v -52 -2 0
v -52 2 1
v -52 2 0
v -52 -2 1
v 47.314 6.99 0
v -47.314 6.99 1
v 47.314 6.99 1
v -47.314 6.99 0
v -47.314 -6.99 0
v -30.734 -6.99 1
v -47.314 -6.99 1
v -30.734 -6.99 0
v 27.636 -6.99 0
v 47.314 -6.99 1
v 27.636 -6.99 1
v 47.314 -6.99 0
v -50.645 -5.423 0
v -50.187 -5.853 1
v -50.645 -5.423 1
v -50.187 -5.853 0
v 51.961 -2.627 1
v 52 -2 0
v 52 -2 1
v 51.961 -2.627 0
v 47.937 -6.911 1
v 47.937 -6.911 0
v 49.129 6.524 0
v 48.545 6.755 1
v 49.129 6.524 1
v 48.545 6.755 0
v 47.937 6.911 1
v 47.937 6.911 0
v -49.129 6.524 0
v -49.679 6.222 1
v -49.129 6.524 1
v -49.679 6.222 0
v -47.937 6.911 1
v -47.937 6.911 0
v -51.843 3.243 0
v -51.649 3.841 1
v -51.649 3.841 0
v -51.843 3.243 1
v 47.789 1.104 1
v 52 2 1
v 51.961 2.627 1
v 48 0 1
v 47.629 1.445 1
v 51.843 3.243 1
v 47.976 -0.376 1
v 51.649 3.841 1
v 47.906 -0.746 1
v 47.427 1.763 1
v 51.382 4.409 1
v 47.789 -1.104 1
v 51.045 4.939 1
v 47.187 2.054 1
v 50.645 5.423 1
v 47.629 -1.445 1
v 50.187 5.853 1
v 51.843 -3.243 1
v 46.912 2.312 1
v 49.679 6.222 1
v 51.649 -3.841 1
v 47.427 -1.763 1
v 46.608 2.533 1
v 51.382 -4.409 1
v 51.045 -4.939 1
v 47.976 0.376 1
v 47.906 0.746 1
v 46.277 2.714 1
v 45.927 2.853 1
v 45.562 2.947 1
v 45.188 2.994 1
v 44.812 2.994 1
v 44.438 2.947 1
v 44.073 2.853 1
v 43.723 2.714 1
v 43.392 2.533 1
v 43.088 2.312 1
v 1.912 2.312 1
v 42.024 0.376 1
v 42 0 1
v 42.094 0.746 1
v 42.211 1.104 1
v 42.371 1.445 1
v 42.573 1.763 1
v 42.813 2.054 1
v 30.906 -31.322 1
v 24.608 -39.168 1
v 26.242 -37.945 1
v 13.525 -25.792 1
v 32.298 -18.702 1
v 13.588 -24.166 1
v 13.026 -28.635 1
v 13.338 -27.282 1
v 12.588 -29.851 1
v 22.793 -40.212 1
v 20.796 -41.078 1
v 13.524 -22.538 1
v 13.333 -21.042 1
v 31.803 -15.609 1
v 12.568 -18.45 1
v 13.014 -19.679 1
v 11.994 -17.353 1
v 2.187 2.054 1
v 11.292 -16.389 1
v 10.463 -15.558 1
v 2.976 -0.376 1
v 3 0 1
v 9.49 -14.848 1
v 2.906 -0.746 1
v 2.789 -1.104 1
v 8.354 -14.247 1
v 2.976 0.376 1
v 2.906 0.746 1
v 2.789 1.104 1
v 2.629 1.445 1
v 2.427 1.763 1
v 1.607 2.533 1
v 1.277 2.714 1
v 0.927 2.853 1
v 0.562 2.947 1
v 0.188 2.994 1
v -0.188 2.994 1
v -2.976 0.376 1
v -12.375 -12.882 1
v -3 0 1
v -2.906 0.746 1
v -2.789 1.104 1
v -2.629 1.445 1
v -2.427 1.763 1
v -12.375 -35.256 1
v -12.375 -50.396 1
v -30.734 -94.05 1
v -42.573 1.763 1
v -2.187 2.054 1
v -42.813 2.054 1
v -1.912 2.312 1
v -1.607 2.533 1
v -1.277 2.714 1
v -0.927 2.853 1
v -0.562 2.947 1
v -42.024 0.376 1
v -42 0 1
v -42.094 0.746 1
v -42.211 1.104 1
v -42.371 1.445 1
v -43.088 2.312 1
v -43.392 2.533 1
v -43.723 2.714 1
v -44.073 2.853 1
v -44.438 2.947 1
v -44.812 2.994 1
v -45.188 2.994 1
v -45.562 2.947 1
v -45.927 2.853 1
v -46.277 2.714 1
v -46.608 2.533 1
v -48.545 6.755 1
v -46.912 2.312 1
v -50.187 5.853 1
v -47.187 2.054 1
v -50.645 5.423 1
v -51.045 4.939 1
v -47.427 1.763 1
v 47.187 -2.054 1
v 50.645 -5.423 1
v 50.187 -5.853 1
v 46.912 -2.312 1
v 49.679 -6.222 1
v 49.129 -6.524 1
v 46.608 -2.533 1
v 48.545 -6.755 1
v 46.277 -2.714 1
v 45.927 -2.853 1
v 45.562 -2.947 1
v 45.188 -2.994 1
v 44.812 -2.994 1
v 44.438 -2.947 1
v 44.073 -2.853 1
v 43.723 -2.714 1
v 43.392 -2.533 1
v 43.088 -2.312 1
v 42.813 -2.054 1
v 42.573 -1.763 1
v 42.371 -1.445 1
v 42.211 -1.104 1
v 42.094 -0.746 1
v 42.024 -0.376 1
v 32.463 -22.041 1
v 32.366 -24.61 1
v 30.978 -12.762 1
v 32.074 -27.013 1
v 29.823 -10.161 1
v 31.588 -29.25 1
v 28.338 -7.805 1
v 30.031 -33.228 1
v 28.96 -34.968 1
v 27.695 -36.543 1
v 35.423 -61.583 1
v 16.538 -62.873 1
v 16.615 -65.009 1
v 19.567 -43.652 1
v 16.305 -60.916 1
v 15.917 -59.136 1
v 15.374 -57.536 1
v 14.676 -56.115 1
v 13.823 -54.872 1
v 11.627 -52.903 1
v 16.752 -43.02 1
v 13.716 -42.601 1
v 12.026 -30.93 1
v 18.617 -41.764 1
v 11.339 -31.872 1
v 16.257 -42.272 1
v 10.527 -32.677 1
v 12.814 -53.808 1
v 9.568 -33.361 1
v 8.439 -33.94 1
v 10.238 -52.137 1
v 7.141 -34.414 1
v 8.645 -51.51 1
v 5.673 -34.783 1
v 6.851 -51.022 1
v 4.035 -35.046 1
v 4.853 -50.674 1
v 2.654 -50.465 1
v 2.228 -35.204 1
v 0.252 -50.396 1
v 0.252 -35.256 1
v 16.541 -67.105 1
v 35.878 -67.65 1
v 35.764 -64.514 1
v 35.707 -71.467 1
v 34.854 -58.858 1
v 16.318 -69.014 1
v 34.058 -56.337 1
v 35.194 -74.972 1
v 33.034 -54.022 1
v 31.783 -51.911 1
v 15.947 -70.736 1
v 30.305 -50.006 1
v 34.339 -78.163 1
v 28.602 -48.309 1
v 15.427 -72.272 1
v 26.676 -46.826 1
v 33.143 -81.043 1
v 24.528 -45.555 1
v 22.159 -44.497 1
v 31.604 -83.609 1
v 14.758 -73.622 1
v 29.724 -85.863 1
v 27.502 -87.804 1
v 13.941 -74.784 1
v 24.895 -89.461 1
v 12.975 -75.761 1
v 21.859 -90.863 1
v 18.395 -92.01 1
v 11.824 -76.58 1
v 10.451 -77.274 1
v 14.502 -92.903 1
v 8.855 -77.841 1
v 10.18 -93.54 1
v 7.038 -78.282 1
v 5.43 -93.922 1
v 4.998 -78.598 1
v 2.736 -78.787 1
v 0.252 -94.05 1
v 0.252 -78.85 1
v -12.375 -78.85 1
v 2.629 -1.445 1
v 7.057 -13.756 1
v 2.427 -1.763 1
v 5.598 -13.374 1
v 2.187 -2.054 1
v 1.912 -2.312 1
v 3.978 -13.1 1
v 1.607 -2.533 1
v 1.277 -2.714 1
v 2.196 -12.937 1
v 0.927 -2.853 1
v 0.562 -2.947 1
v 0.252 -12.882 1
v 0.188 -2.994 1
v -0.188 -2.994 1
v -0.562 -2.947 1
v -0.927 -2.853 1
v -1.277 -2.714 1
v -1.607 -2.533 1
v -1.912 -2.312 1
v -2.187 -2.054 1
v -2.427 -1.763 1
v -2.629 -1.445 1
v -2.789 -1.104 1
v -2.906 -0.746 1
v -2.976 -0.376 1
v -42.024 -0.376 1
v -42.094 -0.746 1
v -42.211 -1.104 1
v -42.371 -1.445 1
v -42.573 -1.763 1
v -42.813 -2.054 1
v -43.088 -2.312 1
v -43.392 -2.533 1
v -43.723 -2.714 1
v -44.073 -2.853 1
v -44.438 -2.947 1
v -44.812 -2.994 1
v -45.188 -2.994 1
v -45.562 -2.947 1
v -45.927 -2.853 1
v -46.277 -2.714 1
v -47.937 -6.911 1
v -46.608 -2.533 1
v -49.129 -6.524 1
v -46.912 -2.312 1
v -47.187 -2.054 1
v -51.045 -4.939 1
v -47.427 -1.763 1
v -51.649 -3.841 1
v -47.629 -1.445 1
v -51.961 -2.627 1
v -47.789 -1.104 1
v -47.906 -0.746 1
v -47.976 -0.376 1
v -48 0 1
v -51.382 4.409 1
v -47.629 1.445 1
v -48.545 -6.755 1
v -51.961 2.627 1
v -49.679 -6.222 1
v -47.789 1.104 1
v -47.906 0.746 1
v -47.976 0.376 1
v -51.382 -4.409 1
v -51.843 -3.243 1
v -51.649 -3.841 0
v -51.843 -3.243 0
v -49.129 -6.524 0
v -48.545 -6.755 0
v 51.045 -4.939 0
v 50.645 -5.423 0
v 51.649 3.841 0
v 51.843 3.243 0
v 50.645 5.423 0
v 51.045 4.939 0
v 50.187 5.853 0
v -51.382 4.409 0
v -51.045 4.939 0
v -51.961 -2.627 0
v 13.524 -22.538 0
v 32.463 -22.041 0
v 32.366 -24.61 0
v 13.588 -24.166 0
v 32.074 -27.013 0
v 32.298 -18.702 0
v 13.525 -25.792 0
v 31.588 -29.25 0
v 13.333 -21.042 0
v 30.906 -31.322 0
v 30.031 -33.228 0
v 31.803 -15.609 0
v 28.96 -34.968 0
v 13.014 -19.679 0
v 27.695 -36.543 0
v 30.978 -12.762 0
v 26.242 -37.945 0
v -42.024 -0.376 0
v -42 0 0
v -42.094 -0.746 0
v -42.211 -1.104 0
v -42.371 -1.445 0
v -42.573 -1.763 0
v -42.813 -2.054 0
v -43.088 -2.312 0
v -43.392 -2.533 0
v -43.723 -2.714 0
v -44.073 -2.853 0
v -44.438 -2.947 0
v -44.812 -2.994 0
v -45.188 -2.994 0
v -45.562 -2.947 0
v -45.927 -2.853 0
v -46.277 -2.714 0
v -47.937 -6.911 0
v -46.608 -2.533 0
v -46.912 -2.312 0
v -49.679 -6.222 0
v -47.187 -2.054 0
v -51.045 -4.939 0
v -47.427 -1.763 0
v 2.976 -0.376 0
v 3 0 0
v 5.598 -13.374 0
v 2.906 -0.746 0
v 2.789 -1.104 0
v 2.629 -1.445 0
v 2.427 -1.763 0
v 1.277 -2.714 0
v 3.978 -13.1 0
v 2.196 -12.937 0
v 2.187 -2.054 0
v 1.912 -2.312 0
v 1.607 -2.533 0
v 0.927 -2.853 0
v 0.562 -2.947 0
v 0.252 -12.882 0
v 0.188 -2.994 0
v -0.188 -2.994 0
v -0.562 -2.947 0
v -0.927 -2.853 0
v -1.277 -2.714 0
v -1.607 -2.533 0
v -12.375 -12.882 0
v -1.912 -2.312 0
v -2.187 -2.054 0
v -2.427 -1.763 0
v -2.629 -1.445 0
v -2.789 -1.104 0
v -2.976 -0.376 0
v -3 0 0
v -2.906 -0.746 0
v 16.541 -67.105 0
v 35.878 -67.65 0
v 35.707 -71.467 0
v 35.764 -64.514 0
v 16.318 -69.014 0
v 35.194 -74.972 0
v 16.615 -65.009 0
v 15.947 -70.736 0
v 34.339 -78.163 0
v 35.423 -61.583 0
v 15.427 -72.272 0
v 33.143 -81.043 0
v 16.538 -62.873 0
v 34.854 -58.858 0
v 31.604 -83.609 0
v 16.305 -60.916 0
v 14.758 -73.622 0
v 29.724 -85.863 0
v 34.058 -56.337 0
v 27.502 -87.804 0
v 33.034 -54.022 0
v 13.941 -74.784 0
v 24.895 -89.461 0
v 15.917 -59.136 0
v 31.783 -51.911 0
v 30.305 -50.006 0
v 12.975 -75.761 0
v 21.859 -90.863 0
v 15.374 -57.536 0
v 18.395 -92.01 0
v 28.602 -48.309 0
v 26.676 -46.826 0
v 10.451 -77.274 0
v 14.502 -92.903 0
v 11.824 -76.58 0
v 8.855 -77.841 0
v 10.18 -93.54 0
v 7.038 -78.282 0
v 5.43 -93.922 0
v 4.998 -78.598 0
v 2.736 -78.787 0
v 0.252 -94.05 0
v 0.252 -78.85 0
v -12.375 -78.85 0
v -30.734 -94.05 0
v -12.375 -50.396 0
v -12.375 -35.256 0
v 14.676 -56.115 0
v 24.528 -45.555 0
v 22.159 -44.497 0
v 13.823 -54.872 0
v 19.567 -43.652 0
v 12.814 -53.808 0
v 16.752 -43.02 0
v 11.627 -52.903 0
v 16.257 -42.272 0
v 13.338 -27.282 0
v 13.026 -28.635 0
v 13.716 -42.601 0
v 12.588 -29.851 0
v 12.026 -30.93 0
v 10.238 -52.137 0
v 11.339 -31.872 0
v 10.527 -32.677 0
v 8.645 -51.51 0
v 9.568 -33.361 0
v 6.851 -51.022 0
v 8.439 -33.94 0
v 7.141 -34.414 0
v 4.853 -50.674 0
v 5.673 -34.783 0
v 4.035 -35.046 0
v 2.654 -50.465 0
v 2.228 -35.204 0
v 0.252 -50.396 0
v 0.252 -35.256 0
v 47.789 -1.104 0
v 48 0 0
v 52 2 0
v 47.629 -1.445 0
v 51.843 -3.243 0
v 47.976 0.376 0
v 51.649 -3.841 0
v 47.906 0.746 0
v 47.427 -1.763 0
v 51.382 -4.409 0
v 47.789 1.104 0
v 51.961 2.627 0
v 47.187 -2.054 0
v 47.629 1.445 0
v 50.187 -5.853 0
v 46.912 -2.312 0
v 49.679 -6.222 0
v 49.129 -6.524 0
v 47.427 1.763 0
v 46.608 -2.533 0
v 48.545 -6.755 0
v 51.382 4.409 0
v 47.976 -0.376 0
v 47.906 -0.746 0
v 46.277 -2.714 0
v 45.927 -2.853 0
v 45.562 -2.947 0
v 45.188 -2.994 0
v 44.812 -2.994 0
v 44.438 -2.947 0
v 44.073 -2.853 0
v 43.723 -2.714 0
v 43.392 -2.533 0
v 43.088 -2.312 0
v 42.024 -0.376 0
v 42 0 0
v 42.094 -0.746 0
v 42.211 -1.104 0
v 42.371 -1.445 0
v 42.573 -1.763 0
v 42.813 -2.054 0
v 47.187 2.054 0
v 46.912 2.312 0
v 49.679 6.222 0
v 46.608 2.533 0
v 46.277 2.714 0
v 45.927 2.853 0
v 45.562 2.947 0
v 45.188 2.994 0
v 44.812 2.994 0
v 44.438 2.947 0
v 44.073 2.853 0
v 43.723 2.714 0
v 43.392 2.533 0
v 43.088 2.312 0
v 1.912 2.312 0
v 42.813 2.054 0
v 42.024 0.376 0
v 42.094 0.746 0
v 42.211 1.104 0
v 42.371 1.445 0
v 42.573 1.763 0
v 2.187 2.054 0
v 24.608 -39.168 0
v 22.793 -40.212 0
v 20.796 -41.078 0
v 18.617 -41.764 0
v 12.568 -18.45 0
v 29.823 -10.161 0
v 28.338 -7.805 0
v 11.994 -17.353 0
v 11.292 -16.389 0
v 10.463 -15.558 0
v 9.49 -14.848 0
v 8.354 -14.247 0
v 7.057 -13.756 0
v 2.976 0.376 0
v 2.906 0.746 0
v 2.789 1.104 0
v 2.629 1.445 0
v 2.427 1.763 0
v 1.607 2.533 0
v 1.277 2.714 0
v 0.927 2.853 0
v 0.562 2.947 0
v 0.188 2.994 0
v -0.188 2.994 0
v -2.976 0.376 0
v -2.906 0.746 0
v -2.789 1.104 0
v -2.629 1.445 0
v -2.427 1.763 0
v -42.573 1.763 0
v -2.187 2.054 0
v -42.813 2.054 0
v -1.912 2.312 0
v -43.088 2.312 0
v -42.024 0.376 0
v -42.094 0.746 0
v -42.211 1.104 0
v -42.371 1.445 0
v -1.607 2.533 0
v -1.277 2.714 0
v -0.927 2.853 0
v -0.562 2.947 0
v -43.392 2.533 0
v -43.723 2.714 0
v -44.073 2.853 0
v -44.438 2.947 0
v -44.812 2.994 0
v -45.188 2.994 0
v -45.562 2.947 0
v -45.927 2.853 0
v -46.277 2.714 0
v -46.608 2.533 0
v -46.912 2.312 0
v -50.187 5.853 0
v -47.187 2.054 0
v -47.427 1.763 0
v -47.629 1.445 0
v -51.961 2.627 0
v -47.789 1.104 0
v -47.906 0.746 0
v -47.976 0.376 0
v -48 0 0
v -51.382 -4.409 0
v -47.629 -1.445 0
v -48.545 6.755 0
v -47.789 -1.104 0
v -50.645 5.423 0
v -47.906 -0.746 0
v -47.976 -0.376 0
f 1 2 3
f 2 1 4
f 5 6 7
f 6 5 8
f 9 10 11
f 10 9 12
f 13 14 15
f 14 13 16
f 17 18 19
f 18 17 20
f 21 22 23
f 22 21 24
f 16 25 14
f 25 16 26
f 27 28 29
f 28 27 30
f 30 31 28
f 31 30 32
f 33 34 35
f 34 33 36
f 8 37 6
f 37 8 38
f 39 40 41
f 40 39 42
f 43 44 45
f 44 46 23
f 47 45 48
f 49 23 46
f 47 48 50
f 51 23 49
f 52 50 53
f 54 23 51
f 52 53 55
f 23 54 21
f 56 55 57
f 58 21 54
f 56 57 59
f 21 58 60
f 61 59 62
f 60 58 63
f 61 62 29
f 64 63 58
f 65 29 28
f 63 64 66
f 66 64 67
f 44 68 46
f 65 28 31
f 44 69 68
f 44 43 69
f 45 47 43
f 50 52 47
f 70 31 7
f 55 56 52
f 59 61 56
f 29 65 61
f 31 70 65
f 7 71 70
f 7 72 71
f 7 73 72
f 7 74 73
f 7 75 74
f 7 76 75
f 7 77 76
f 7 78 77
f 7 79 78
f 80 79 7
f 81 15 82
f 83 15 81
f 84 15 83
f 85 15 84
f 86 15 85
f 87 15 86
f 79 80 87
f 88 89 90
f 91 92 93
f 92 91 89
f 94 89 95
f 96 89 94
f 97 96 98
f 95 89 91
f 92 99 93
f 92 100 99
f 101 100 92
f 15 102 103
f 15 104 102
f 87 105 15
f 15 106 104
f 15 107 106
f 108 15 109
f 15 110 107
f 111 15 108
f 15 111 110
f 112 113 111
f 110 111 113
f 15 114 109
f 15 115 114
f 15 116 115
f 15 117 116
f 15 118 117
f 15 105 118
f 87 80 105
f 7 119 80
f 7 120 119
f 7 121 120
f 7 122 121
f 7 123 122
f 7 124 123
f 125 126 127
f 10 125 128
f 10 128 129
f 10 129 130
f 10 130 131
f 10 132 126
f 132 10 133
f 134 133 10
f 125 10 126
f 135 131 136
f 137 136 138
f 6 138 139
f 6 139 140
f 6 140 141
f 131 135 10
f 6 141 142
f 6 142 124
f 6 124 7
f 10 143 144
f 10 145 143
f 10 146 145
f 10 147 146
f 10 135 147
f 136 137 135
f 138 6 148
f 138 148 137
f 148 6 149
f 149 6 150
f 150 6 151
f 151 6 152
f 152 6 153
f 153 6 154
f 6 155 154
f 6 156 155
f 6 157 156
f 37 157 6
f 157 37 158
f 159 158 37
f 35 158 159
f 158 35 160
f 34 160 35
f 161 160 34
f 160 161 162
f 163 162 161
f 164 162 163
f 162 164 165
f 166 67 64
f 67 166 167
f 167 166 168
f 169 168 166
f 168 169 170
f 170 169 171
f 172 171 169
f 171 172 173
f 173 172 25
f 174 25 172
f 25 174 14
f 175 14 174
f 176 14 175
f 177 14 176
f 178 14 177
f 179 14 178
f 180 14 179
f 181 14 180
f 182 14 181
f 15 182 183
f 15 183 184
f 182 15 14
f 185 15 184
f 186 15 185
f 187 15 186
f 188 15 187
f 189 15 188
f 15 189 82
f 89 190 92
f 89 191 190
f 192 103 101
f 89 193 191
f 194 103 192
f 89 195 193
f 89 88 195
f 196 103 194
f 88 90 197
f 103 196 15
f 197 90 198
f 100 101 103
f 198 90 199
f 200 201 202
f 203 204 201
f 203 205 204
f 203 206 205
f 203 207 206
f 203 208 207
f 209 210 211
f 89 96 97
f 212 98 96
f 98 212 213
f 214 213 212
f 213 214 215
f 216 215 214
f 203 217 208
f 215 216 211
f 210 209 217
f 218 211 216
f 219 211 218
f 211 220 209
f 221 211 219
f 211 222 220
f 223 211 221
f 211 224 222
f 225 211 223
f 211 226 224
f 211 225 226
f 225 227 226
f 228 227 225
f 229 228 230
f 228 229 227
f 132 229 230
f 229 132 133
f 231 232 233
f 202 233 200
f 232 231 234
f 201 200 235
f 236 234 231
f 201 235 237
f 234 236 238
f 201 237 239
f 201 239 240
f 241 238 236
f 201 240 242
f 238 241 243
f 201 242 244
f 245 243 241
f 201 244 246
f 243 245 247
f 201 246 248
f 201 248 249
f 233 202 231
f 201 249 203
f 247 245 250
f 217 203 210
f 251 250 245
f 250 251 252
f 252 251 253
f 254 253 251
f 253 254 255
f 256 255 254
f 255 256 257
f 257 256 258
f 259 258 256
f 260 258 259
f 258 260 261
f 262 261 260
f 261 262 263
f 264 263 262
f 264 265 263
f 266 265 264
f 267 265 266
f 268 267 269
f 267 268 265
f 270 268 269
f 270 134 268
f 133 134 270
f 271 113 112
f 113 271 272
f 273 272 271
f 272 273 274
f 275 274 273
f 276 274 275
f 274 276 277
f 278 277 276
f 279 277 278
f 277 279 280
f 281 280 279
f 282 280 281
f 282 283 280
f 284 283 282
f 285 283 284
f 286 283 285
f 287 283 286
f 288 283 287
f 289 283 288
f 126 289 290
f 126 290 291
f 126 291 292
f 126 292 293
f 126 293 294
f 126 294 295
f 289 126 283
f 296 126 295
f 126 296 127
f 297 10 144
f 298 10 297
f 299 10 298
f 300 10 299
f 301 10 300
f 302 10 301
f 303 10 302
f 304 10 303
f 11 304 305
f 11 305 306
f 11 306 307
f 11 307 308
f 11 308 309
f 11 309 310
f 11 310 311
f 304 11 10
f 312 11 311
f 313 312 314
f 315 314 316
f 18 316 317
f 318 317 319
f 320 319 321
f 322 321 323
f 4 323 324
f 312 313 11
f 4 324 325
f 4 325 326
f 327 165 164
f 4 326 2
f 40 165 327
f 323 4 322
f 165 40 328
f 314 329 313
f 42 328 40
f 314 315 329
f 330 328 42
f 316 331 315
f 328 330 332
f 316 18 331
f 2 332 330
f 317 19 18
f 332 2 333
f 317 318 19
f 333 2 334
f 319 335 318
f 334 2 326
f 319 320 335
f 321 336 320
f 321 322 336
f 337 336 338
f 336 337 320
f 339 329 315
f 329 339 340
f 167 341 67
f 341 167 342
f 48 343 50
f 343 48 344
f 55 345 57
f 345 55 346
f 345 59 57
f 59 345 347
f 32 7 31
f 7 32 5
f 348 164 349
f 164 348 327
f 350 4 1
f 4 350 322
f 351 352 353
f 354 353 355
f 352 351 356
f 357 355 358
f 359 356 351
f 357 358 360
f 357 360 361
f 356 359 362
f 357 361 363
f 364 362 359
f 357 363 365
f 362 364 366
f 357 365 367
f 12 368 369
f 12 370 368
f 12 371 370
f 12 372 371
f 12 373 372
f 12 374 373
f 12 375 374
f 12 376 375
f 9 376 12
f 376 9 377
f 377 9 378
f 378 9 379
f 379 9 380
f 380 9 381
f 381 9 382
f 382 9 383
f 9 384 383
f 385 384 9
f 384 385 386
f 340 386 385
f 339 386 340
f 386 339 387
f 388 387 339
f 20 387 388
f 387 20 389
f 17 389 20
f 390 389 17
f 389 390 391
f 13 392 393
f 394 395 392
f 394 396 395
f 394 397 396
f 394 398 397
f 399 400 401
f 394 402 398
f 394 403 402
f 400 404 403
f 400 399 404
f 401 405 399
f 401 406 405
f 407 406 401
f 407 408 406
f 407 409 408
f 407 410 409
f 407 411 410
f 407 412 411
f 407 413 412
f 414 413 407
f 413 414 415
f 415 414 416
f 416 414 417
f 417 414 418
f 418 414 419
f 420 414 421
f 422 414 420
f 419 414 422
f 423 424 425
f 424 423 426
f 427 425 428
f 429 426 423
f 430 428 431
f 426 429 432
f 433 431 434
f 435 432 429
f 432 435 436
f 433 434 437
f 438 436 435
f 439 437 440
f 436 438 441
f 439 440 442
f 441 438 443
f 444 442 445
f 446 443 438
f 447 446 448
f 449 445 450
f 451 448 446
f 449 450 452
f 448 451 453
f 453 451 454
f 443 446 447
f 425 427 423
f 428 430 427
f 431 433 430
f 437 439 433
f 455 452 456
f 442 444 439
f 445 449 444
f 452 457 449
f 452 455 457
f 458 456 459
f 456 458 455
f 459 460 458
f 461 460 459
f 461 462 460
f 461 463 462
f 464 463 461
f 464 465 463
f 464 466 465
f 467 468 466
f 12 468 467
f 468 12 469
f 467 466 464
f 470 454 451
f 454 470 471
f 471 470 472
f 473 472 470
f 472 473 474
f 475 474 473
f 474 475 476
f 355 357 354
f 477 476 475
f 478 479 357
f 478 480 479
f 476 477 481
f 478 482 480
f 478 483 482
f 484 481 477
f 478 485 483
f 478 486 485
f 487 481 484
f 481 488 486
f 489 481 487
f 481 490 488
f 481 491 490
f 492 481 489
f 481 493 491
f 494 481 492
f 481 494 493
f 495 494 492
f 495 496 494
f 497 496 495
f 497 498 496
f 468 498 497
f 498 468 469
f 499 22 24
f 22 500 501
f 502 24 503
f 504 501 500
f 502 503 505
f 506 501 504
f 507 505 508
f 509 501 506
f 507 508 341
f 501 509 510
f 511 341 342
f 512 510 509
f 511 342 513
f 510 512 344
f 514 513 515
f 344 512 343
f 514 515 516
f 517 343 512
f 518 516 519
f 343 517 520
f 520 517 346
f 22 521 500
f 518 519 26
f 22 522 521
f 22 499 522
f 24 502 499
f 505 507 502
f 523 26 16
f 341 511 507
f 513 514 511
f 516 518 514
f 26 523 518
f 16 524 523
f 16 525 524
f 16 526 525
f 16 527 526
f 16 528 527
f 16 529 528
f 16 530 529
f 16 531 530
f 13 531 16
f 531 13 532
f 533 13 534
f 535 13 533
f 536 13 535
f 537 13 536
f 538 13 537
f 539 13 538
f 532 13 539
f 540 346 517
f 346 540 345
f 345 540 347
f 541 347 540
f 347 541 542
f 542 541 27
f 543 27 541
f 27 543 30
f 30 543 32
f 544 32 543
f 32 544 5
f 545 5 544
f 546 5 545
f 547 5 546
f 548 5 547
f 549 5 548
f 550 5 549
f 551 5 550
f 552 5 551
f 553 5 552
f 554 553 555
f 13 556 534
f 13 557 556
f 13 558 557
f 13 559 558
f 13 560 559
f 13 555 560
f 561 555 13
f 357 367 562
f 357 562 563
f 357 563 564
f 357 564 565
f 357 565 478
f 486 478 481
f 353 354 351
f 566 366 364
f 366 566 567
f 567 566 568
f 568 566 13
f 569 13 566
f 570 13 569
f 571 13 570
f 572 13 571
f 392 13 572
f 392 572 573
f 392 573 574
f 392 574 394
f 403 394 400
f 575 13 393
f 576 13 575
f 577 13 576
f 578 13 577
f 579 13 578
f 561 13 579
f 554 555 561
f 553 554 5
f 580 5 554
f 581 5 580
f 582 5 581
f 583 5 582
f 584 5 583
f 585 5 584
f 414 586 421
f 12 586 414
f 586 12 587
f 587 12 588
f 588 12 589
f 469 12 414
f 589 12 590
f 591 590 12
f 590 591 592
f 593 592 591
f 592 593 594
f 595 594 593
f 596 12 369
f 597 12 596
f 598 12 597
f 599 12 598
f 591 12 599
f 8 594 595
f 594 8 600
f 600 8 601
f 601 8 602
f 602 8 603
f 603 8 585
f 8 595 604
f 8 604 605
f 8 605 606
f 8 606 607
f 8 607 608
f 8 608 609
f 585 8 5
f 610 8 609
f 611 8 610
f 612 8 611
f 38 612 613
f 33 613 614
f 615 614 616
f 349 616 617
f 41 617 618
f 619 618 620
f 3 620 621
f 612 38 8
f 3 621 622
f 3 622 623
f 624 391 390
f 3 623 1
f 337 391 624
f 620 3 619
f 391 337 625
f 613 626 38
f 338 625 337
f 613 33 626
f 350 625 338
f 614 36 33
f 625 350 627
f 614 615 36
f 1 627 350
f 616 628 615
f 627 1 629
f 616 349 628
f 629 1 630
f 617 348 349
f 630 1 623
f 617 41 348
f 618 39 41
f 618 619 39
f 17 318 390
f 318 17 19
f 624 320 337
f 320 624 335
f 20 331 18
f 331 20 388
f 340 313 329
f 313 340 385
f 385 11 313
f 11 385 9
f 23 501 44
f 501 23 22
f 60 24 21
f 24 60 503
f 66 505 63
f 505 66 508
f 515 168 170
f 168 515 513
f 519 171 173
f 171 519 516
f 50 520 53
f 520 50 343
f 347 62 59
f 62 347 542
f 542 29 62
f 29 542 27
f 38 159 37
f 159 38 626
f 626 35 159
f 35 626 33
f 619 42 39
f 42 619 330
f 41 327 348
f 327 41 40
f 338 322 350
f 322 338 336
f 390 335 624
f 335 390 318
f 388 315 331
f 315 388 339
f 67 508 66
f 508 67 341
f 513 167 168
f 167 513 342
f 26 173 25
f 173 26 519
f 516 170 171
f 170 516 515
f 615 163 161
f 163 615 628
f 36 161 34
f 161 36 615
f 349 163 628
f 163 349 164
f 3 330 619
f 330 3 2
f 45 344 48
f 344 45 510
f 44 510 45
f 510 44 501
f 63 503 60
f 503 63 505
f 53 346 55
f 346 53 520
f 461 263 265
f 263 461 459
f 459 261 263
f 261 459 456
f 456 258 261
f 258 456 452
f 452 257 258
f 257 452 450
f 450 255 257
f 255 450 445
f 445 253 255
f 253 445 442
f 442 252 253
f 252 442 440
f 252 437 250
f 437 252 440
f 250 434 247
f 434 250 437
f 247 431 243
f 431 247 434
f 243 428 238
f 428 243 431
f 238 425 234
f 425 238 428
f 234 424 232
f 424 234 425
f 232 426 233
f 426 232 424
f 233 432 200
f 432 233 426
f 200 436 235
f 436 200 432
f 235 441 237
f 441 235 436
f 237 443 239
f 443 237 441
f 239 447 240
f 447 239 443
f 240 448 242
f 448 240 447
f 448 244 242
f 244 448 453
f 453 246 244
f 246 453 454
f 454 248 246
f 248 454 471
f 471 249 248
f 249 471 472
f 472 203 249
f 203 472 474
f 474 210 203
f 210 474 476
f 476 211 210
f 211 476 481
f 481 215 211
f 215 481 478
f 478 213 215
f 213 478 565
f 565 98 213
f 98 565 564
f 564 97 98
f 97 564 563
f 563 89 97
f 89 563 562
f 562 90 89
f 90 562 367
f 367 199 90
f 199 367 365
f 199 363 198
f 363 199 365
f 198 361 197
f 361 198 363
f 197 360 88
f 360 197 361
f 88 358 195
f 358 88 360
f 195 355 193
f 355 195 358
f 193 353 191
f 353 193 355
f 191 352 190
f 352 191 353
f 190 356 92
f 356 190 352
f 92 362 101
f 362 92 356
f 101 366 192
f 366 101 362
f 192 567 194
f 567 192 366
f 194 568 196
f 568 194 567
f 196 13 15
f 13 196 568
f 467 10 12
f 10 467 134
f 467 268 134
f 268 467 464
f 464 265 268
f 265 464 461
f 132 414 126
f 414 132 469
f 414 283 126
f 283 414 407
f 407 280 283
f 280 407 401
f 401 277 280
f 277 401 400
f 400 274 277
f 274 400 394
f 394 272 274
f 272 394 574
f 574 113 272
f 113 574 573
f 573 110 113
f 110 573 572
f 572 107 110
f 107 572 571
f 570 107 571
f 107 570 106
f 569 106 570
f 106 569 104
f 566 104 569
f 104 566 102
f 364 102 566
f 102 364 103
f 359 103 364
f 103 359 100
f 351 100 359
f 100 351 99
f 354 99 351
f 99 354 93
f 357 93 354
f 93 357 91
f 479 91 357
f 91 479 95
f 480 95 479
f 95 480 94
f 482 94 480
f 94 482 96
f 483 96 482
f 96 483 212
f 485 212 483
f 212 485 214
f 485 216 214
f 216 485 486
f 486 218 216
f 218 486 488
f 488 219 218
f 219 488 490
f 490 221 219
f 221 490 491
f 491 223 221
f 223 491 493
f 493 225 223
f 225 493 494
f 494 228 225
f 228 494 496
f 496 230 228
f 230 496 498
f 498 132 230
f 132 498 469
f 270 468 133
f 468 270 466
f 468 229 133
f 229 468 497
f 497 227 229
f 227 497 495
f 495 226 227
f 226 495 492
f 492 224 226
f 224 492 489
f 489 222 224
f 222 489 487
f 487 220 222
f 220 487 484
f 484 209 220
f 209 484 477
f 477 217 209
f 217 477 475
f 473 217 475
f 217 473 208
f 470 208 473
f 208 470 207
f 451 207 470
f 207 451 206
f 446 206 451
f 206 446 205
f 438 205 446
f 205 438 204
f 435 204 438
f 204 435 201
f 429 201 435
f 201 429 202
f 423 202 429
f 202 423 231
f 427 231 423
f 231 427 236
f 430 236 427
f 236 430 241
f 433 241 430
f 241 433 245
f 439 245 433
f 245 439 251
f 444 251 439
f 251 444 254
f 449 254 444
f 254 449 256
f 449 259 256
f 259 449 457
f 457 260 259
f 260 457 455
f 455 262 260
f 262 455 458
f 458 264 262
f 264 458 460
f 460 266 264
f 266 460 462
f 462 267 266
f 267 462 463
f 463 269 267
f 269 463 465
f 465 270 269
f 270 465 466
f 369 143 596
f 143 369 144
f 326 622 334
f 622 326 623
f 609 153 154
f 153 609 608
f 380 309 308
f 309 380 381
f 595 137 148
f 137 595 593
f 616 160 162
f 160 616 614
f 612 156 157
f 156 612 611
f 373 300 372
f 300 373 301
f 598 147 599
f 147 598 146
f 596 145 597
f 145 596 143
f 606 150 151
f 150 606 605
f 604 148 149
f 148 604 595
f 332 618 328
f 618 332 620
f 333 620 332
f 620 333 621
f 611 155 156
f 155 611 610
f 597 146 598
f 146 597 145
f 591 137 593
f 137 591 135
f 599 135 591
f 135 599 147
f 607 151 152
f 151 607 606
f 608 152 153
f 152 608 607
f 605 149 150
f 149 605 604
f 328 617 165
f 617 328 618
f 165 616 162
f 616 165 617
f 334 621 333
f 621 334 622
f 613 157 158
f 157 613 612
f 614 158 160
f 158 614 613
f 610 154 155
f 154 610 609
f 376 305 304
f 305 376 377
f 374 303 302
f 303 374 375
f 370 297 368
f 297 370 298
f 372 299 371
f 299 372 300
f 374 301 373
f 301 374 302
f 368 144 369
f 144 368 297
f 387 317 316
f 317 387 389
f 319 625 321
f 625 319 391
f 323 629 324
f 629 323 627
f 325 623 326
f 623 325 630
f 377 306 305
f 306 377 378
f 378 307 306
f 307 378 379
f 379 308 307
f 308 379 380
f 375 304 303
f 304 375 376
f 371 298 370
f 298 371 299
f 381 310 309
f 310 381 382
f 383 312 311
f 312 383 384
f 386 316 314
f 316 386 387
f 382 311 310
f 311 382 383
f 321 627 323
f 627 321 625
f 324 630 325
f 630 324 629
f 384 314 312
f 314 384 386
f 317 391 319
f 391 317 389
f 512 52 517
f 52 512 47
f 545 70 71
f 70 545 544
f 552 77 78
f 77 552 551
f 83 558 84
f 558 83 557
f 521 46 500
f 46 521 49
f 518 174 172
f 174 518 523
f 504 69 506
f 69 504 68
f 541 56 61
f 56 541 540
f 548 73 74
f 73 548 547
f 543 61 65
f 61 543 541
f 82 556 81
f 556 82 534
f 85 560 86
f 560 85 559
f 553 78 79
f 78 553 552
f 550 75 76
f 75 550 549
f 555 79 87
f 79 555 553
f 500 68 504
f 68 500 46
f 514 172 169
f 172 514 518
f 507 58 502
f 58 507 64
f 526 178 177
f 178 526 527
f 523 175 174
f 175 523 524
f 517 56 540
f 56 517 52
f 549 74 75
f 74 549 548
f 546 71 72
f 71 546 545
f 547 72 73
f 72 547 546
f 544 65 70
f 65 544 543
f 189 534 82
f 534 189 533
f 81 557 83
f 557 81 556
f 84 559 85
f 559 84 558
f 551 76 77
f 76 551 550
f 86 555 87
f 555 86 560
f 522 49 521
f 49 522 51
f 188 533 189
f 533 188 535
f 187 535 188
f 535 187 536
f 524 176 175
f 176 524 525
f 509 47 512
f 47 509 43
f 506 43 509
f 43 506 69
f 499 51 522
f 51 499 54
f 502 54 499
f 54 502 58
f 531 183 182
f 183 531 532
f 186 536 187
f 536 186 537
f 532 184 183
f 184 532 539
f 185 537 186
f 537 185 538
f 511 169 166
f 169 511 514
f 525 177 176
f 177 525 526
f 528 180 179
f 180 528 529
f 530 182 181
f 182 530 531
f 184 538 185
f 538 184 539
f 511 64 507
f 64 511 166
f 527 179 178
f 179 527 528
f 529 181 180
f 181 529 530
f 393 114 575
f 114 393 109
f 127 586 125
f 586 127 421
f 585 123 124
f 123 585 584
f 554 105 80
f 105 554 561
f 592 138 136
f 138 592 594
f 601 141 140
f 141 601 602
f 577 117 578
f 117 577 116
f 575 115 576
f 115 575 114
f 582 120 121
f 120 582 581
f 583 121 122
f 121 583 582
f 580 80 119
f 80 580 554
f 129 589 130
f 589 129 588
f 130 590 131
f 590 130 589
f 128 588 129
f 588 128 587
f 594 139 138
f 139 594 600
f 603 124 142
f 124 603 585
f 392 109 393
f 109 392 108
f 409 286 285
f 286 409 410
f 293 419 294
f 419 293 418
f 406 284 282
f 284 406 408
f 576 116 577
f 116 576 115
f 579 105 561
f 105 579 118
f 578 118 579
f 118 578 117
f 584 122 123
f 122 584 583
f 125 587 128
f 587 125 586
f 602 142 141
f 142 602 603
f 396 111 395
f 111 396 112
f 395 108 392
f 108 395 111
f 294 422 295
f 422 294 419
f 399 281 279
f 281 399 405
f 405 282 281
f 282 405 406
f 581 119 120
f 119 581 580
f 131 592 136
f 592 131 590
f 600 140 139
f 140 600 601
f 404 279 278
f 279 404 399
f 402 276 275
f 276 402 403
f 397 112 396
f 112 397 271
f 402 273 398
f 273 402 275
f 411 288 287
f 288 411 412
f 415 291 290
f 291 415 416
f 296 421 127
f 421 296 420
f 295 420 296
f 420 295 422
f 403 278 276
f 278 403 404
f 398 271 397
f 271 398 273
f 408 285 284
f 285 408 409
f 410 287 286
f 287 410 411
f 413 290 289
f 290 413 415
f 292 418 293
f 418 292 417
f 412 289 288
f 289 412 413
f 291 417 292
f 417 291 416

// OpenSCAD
$fn = 50;


difference() {
	union() {
		translate(v = [0, 0, 0]) {
			rotate(a = [0, 0, 0]) {
				hull() {
					translate(v = [-47.0000000000, 2.0000000000, 0]) {
						rotate(a = [0, 0, 0]) {
							translate(v = [0, 0, 0]) {
								rotate(a = [0, 0, 0]) {
									cylinder(h = 1, r = 5);
								}
							}
						}
					}
					translate(v = [47.0000000000, 2.0000000000, 0]) {
						rotate(a = [0, 0, 0]) {
							translate(v = [0, 0, 0]) {
								rotate(a = [0, 0, 0]) {
									cylinder(h = 1, r = 5);
								}
							}
						}
					}
					translate(v = [-47.0000000000, -2.0000000000, 0]) {
						rotate(a = [0, 0, 0]) {
							translate(v = [0, 0, 0]) {
								rotate(a = [0, 0, 0]) {
									cylinder(h = 1, r = 5);
								}
							}
						}
					}
					translate(v = [47.0000000000, -2.0000000000, 0]) {
						rotate(a = [0, 0, 0]) {
							translate(v = [0, 0, 0]) {
								rotate(a = [0, 0, 0]) {
									cylinder(h = 1, r = 5);
								}
							}
						}
					}
				}
			}
		}
		translate(v = [0, 0, 0]) {
			rotate(a = [0, 0, 0]) {
				linear_extrude(height = 1) {
					text(font = "DejaVu Sans Mono:style=Bold", halign = "center", size = 95, text = "B", valign = "top");
				}
			}
		}
	}
	union() {
		translate(v = [-45.0000000000, 0.0000000000, -125.0000000000]) {
			rotate(a = [0, 0, 0]) {
				cylinder(h = 250, r = 3.0000000000);
			}
		}
		translate(v = [45.0000000000, 0.0000000000, -125.0000000000]) {
			rotate(a = [0, 0, 0]) {
				cylinder(h = 250, r = 3.0000000000);
			}
		}
		translate(v = [45.0000000000, 0.0000000000, -125.0000000000]) {
			rotate(a = [0, 0, 0]) {
				cylinder(h = 250, r = 3.0000000000);
			}
		}
		translate(v = [0, 0, -125.0000000000]) {
			rotate(a = [0, 0, 0]) {
				cylinder(h = 250, r = 3.0000000000);
			}
		}
	}
}
